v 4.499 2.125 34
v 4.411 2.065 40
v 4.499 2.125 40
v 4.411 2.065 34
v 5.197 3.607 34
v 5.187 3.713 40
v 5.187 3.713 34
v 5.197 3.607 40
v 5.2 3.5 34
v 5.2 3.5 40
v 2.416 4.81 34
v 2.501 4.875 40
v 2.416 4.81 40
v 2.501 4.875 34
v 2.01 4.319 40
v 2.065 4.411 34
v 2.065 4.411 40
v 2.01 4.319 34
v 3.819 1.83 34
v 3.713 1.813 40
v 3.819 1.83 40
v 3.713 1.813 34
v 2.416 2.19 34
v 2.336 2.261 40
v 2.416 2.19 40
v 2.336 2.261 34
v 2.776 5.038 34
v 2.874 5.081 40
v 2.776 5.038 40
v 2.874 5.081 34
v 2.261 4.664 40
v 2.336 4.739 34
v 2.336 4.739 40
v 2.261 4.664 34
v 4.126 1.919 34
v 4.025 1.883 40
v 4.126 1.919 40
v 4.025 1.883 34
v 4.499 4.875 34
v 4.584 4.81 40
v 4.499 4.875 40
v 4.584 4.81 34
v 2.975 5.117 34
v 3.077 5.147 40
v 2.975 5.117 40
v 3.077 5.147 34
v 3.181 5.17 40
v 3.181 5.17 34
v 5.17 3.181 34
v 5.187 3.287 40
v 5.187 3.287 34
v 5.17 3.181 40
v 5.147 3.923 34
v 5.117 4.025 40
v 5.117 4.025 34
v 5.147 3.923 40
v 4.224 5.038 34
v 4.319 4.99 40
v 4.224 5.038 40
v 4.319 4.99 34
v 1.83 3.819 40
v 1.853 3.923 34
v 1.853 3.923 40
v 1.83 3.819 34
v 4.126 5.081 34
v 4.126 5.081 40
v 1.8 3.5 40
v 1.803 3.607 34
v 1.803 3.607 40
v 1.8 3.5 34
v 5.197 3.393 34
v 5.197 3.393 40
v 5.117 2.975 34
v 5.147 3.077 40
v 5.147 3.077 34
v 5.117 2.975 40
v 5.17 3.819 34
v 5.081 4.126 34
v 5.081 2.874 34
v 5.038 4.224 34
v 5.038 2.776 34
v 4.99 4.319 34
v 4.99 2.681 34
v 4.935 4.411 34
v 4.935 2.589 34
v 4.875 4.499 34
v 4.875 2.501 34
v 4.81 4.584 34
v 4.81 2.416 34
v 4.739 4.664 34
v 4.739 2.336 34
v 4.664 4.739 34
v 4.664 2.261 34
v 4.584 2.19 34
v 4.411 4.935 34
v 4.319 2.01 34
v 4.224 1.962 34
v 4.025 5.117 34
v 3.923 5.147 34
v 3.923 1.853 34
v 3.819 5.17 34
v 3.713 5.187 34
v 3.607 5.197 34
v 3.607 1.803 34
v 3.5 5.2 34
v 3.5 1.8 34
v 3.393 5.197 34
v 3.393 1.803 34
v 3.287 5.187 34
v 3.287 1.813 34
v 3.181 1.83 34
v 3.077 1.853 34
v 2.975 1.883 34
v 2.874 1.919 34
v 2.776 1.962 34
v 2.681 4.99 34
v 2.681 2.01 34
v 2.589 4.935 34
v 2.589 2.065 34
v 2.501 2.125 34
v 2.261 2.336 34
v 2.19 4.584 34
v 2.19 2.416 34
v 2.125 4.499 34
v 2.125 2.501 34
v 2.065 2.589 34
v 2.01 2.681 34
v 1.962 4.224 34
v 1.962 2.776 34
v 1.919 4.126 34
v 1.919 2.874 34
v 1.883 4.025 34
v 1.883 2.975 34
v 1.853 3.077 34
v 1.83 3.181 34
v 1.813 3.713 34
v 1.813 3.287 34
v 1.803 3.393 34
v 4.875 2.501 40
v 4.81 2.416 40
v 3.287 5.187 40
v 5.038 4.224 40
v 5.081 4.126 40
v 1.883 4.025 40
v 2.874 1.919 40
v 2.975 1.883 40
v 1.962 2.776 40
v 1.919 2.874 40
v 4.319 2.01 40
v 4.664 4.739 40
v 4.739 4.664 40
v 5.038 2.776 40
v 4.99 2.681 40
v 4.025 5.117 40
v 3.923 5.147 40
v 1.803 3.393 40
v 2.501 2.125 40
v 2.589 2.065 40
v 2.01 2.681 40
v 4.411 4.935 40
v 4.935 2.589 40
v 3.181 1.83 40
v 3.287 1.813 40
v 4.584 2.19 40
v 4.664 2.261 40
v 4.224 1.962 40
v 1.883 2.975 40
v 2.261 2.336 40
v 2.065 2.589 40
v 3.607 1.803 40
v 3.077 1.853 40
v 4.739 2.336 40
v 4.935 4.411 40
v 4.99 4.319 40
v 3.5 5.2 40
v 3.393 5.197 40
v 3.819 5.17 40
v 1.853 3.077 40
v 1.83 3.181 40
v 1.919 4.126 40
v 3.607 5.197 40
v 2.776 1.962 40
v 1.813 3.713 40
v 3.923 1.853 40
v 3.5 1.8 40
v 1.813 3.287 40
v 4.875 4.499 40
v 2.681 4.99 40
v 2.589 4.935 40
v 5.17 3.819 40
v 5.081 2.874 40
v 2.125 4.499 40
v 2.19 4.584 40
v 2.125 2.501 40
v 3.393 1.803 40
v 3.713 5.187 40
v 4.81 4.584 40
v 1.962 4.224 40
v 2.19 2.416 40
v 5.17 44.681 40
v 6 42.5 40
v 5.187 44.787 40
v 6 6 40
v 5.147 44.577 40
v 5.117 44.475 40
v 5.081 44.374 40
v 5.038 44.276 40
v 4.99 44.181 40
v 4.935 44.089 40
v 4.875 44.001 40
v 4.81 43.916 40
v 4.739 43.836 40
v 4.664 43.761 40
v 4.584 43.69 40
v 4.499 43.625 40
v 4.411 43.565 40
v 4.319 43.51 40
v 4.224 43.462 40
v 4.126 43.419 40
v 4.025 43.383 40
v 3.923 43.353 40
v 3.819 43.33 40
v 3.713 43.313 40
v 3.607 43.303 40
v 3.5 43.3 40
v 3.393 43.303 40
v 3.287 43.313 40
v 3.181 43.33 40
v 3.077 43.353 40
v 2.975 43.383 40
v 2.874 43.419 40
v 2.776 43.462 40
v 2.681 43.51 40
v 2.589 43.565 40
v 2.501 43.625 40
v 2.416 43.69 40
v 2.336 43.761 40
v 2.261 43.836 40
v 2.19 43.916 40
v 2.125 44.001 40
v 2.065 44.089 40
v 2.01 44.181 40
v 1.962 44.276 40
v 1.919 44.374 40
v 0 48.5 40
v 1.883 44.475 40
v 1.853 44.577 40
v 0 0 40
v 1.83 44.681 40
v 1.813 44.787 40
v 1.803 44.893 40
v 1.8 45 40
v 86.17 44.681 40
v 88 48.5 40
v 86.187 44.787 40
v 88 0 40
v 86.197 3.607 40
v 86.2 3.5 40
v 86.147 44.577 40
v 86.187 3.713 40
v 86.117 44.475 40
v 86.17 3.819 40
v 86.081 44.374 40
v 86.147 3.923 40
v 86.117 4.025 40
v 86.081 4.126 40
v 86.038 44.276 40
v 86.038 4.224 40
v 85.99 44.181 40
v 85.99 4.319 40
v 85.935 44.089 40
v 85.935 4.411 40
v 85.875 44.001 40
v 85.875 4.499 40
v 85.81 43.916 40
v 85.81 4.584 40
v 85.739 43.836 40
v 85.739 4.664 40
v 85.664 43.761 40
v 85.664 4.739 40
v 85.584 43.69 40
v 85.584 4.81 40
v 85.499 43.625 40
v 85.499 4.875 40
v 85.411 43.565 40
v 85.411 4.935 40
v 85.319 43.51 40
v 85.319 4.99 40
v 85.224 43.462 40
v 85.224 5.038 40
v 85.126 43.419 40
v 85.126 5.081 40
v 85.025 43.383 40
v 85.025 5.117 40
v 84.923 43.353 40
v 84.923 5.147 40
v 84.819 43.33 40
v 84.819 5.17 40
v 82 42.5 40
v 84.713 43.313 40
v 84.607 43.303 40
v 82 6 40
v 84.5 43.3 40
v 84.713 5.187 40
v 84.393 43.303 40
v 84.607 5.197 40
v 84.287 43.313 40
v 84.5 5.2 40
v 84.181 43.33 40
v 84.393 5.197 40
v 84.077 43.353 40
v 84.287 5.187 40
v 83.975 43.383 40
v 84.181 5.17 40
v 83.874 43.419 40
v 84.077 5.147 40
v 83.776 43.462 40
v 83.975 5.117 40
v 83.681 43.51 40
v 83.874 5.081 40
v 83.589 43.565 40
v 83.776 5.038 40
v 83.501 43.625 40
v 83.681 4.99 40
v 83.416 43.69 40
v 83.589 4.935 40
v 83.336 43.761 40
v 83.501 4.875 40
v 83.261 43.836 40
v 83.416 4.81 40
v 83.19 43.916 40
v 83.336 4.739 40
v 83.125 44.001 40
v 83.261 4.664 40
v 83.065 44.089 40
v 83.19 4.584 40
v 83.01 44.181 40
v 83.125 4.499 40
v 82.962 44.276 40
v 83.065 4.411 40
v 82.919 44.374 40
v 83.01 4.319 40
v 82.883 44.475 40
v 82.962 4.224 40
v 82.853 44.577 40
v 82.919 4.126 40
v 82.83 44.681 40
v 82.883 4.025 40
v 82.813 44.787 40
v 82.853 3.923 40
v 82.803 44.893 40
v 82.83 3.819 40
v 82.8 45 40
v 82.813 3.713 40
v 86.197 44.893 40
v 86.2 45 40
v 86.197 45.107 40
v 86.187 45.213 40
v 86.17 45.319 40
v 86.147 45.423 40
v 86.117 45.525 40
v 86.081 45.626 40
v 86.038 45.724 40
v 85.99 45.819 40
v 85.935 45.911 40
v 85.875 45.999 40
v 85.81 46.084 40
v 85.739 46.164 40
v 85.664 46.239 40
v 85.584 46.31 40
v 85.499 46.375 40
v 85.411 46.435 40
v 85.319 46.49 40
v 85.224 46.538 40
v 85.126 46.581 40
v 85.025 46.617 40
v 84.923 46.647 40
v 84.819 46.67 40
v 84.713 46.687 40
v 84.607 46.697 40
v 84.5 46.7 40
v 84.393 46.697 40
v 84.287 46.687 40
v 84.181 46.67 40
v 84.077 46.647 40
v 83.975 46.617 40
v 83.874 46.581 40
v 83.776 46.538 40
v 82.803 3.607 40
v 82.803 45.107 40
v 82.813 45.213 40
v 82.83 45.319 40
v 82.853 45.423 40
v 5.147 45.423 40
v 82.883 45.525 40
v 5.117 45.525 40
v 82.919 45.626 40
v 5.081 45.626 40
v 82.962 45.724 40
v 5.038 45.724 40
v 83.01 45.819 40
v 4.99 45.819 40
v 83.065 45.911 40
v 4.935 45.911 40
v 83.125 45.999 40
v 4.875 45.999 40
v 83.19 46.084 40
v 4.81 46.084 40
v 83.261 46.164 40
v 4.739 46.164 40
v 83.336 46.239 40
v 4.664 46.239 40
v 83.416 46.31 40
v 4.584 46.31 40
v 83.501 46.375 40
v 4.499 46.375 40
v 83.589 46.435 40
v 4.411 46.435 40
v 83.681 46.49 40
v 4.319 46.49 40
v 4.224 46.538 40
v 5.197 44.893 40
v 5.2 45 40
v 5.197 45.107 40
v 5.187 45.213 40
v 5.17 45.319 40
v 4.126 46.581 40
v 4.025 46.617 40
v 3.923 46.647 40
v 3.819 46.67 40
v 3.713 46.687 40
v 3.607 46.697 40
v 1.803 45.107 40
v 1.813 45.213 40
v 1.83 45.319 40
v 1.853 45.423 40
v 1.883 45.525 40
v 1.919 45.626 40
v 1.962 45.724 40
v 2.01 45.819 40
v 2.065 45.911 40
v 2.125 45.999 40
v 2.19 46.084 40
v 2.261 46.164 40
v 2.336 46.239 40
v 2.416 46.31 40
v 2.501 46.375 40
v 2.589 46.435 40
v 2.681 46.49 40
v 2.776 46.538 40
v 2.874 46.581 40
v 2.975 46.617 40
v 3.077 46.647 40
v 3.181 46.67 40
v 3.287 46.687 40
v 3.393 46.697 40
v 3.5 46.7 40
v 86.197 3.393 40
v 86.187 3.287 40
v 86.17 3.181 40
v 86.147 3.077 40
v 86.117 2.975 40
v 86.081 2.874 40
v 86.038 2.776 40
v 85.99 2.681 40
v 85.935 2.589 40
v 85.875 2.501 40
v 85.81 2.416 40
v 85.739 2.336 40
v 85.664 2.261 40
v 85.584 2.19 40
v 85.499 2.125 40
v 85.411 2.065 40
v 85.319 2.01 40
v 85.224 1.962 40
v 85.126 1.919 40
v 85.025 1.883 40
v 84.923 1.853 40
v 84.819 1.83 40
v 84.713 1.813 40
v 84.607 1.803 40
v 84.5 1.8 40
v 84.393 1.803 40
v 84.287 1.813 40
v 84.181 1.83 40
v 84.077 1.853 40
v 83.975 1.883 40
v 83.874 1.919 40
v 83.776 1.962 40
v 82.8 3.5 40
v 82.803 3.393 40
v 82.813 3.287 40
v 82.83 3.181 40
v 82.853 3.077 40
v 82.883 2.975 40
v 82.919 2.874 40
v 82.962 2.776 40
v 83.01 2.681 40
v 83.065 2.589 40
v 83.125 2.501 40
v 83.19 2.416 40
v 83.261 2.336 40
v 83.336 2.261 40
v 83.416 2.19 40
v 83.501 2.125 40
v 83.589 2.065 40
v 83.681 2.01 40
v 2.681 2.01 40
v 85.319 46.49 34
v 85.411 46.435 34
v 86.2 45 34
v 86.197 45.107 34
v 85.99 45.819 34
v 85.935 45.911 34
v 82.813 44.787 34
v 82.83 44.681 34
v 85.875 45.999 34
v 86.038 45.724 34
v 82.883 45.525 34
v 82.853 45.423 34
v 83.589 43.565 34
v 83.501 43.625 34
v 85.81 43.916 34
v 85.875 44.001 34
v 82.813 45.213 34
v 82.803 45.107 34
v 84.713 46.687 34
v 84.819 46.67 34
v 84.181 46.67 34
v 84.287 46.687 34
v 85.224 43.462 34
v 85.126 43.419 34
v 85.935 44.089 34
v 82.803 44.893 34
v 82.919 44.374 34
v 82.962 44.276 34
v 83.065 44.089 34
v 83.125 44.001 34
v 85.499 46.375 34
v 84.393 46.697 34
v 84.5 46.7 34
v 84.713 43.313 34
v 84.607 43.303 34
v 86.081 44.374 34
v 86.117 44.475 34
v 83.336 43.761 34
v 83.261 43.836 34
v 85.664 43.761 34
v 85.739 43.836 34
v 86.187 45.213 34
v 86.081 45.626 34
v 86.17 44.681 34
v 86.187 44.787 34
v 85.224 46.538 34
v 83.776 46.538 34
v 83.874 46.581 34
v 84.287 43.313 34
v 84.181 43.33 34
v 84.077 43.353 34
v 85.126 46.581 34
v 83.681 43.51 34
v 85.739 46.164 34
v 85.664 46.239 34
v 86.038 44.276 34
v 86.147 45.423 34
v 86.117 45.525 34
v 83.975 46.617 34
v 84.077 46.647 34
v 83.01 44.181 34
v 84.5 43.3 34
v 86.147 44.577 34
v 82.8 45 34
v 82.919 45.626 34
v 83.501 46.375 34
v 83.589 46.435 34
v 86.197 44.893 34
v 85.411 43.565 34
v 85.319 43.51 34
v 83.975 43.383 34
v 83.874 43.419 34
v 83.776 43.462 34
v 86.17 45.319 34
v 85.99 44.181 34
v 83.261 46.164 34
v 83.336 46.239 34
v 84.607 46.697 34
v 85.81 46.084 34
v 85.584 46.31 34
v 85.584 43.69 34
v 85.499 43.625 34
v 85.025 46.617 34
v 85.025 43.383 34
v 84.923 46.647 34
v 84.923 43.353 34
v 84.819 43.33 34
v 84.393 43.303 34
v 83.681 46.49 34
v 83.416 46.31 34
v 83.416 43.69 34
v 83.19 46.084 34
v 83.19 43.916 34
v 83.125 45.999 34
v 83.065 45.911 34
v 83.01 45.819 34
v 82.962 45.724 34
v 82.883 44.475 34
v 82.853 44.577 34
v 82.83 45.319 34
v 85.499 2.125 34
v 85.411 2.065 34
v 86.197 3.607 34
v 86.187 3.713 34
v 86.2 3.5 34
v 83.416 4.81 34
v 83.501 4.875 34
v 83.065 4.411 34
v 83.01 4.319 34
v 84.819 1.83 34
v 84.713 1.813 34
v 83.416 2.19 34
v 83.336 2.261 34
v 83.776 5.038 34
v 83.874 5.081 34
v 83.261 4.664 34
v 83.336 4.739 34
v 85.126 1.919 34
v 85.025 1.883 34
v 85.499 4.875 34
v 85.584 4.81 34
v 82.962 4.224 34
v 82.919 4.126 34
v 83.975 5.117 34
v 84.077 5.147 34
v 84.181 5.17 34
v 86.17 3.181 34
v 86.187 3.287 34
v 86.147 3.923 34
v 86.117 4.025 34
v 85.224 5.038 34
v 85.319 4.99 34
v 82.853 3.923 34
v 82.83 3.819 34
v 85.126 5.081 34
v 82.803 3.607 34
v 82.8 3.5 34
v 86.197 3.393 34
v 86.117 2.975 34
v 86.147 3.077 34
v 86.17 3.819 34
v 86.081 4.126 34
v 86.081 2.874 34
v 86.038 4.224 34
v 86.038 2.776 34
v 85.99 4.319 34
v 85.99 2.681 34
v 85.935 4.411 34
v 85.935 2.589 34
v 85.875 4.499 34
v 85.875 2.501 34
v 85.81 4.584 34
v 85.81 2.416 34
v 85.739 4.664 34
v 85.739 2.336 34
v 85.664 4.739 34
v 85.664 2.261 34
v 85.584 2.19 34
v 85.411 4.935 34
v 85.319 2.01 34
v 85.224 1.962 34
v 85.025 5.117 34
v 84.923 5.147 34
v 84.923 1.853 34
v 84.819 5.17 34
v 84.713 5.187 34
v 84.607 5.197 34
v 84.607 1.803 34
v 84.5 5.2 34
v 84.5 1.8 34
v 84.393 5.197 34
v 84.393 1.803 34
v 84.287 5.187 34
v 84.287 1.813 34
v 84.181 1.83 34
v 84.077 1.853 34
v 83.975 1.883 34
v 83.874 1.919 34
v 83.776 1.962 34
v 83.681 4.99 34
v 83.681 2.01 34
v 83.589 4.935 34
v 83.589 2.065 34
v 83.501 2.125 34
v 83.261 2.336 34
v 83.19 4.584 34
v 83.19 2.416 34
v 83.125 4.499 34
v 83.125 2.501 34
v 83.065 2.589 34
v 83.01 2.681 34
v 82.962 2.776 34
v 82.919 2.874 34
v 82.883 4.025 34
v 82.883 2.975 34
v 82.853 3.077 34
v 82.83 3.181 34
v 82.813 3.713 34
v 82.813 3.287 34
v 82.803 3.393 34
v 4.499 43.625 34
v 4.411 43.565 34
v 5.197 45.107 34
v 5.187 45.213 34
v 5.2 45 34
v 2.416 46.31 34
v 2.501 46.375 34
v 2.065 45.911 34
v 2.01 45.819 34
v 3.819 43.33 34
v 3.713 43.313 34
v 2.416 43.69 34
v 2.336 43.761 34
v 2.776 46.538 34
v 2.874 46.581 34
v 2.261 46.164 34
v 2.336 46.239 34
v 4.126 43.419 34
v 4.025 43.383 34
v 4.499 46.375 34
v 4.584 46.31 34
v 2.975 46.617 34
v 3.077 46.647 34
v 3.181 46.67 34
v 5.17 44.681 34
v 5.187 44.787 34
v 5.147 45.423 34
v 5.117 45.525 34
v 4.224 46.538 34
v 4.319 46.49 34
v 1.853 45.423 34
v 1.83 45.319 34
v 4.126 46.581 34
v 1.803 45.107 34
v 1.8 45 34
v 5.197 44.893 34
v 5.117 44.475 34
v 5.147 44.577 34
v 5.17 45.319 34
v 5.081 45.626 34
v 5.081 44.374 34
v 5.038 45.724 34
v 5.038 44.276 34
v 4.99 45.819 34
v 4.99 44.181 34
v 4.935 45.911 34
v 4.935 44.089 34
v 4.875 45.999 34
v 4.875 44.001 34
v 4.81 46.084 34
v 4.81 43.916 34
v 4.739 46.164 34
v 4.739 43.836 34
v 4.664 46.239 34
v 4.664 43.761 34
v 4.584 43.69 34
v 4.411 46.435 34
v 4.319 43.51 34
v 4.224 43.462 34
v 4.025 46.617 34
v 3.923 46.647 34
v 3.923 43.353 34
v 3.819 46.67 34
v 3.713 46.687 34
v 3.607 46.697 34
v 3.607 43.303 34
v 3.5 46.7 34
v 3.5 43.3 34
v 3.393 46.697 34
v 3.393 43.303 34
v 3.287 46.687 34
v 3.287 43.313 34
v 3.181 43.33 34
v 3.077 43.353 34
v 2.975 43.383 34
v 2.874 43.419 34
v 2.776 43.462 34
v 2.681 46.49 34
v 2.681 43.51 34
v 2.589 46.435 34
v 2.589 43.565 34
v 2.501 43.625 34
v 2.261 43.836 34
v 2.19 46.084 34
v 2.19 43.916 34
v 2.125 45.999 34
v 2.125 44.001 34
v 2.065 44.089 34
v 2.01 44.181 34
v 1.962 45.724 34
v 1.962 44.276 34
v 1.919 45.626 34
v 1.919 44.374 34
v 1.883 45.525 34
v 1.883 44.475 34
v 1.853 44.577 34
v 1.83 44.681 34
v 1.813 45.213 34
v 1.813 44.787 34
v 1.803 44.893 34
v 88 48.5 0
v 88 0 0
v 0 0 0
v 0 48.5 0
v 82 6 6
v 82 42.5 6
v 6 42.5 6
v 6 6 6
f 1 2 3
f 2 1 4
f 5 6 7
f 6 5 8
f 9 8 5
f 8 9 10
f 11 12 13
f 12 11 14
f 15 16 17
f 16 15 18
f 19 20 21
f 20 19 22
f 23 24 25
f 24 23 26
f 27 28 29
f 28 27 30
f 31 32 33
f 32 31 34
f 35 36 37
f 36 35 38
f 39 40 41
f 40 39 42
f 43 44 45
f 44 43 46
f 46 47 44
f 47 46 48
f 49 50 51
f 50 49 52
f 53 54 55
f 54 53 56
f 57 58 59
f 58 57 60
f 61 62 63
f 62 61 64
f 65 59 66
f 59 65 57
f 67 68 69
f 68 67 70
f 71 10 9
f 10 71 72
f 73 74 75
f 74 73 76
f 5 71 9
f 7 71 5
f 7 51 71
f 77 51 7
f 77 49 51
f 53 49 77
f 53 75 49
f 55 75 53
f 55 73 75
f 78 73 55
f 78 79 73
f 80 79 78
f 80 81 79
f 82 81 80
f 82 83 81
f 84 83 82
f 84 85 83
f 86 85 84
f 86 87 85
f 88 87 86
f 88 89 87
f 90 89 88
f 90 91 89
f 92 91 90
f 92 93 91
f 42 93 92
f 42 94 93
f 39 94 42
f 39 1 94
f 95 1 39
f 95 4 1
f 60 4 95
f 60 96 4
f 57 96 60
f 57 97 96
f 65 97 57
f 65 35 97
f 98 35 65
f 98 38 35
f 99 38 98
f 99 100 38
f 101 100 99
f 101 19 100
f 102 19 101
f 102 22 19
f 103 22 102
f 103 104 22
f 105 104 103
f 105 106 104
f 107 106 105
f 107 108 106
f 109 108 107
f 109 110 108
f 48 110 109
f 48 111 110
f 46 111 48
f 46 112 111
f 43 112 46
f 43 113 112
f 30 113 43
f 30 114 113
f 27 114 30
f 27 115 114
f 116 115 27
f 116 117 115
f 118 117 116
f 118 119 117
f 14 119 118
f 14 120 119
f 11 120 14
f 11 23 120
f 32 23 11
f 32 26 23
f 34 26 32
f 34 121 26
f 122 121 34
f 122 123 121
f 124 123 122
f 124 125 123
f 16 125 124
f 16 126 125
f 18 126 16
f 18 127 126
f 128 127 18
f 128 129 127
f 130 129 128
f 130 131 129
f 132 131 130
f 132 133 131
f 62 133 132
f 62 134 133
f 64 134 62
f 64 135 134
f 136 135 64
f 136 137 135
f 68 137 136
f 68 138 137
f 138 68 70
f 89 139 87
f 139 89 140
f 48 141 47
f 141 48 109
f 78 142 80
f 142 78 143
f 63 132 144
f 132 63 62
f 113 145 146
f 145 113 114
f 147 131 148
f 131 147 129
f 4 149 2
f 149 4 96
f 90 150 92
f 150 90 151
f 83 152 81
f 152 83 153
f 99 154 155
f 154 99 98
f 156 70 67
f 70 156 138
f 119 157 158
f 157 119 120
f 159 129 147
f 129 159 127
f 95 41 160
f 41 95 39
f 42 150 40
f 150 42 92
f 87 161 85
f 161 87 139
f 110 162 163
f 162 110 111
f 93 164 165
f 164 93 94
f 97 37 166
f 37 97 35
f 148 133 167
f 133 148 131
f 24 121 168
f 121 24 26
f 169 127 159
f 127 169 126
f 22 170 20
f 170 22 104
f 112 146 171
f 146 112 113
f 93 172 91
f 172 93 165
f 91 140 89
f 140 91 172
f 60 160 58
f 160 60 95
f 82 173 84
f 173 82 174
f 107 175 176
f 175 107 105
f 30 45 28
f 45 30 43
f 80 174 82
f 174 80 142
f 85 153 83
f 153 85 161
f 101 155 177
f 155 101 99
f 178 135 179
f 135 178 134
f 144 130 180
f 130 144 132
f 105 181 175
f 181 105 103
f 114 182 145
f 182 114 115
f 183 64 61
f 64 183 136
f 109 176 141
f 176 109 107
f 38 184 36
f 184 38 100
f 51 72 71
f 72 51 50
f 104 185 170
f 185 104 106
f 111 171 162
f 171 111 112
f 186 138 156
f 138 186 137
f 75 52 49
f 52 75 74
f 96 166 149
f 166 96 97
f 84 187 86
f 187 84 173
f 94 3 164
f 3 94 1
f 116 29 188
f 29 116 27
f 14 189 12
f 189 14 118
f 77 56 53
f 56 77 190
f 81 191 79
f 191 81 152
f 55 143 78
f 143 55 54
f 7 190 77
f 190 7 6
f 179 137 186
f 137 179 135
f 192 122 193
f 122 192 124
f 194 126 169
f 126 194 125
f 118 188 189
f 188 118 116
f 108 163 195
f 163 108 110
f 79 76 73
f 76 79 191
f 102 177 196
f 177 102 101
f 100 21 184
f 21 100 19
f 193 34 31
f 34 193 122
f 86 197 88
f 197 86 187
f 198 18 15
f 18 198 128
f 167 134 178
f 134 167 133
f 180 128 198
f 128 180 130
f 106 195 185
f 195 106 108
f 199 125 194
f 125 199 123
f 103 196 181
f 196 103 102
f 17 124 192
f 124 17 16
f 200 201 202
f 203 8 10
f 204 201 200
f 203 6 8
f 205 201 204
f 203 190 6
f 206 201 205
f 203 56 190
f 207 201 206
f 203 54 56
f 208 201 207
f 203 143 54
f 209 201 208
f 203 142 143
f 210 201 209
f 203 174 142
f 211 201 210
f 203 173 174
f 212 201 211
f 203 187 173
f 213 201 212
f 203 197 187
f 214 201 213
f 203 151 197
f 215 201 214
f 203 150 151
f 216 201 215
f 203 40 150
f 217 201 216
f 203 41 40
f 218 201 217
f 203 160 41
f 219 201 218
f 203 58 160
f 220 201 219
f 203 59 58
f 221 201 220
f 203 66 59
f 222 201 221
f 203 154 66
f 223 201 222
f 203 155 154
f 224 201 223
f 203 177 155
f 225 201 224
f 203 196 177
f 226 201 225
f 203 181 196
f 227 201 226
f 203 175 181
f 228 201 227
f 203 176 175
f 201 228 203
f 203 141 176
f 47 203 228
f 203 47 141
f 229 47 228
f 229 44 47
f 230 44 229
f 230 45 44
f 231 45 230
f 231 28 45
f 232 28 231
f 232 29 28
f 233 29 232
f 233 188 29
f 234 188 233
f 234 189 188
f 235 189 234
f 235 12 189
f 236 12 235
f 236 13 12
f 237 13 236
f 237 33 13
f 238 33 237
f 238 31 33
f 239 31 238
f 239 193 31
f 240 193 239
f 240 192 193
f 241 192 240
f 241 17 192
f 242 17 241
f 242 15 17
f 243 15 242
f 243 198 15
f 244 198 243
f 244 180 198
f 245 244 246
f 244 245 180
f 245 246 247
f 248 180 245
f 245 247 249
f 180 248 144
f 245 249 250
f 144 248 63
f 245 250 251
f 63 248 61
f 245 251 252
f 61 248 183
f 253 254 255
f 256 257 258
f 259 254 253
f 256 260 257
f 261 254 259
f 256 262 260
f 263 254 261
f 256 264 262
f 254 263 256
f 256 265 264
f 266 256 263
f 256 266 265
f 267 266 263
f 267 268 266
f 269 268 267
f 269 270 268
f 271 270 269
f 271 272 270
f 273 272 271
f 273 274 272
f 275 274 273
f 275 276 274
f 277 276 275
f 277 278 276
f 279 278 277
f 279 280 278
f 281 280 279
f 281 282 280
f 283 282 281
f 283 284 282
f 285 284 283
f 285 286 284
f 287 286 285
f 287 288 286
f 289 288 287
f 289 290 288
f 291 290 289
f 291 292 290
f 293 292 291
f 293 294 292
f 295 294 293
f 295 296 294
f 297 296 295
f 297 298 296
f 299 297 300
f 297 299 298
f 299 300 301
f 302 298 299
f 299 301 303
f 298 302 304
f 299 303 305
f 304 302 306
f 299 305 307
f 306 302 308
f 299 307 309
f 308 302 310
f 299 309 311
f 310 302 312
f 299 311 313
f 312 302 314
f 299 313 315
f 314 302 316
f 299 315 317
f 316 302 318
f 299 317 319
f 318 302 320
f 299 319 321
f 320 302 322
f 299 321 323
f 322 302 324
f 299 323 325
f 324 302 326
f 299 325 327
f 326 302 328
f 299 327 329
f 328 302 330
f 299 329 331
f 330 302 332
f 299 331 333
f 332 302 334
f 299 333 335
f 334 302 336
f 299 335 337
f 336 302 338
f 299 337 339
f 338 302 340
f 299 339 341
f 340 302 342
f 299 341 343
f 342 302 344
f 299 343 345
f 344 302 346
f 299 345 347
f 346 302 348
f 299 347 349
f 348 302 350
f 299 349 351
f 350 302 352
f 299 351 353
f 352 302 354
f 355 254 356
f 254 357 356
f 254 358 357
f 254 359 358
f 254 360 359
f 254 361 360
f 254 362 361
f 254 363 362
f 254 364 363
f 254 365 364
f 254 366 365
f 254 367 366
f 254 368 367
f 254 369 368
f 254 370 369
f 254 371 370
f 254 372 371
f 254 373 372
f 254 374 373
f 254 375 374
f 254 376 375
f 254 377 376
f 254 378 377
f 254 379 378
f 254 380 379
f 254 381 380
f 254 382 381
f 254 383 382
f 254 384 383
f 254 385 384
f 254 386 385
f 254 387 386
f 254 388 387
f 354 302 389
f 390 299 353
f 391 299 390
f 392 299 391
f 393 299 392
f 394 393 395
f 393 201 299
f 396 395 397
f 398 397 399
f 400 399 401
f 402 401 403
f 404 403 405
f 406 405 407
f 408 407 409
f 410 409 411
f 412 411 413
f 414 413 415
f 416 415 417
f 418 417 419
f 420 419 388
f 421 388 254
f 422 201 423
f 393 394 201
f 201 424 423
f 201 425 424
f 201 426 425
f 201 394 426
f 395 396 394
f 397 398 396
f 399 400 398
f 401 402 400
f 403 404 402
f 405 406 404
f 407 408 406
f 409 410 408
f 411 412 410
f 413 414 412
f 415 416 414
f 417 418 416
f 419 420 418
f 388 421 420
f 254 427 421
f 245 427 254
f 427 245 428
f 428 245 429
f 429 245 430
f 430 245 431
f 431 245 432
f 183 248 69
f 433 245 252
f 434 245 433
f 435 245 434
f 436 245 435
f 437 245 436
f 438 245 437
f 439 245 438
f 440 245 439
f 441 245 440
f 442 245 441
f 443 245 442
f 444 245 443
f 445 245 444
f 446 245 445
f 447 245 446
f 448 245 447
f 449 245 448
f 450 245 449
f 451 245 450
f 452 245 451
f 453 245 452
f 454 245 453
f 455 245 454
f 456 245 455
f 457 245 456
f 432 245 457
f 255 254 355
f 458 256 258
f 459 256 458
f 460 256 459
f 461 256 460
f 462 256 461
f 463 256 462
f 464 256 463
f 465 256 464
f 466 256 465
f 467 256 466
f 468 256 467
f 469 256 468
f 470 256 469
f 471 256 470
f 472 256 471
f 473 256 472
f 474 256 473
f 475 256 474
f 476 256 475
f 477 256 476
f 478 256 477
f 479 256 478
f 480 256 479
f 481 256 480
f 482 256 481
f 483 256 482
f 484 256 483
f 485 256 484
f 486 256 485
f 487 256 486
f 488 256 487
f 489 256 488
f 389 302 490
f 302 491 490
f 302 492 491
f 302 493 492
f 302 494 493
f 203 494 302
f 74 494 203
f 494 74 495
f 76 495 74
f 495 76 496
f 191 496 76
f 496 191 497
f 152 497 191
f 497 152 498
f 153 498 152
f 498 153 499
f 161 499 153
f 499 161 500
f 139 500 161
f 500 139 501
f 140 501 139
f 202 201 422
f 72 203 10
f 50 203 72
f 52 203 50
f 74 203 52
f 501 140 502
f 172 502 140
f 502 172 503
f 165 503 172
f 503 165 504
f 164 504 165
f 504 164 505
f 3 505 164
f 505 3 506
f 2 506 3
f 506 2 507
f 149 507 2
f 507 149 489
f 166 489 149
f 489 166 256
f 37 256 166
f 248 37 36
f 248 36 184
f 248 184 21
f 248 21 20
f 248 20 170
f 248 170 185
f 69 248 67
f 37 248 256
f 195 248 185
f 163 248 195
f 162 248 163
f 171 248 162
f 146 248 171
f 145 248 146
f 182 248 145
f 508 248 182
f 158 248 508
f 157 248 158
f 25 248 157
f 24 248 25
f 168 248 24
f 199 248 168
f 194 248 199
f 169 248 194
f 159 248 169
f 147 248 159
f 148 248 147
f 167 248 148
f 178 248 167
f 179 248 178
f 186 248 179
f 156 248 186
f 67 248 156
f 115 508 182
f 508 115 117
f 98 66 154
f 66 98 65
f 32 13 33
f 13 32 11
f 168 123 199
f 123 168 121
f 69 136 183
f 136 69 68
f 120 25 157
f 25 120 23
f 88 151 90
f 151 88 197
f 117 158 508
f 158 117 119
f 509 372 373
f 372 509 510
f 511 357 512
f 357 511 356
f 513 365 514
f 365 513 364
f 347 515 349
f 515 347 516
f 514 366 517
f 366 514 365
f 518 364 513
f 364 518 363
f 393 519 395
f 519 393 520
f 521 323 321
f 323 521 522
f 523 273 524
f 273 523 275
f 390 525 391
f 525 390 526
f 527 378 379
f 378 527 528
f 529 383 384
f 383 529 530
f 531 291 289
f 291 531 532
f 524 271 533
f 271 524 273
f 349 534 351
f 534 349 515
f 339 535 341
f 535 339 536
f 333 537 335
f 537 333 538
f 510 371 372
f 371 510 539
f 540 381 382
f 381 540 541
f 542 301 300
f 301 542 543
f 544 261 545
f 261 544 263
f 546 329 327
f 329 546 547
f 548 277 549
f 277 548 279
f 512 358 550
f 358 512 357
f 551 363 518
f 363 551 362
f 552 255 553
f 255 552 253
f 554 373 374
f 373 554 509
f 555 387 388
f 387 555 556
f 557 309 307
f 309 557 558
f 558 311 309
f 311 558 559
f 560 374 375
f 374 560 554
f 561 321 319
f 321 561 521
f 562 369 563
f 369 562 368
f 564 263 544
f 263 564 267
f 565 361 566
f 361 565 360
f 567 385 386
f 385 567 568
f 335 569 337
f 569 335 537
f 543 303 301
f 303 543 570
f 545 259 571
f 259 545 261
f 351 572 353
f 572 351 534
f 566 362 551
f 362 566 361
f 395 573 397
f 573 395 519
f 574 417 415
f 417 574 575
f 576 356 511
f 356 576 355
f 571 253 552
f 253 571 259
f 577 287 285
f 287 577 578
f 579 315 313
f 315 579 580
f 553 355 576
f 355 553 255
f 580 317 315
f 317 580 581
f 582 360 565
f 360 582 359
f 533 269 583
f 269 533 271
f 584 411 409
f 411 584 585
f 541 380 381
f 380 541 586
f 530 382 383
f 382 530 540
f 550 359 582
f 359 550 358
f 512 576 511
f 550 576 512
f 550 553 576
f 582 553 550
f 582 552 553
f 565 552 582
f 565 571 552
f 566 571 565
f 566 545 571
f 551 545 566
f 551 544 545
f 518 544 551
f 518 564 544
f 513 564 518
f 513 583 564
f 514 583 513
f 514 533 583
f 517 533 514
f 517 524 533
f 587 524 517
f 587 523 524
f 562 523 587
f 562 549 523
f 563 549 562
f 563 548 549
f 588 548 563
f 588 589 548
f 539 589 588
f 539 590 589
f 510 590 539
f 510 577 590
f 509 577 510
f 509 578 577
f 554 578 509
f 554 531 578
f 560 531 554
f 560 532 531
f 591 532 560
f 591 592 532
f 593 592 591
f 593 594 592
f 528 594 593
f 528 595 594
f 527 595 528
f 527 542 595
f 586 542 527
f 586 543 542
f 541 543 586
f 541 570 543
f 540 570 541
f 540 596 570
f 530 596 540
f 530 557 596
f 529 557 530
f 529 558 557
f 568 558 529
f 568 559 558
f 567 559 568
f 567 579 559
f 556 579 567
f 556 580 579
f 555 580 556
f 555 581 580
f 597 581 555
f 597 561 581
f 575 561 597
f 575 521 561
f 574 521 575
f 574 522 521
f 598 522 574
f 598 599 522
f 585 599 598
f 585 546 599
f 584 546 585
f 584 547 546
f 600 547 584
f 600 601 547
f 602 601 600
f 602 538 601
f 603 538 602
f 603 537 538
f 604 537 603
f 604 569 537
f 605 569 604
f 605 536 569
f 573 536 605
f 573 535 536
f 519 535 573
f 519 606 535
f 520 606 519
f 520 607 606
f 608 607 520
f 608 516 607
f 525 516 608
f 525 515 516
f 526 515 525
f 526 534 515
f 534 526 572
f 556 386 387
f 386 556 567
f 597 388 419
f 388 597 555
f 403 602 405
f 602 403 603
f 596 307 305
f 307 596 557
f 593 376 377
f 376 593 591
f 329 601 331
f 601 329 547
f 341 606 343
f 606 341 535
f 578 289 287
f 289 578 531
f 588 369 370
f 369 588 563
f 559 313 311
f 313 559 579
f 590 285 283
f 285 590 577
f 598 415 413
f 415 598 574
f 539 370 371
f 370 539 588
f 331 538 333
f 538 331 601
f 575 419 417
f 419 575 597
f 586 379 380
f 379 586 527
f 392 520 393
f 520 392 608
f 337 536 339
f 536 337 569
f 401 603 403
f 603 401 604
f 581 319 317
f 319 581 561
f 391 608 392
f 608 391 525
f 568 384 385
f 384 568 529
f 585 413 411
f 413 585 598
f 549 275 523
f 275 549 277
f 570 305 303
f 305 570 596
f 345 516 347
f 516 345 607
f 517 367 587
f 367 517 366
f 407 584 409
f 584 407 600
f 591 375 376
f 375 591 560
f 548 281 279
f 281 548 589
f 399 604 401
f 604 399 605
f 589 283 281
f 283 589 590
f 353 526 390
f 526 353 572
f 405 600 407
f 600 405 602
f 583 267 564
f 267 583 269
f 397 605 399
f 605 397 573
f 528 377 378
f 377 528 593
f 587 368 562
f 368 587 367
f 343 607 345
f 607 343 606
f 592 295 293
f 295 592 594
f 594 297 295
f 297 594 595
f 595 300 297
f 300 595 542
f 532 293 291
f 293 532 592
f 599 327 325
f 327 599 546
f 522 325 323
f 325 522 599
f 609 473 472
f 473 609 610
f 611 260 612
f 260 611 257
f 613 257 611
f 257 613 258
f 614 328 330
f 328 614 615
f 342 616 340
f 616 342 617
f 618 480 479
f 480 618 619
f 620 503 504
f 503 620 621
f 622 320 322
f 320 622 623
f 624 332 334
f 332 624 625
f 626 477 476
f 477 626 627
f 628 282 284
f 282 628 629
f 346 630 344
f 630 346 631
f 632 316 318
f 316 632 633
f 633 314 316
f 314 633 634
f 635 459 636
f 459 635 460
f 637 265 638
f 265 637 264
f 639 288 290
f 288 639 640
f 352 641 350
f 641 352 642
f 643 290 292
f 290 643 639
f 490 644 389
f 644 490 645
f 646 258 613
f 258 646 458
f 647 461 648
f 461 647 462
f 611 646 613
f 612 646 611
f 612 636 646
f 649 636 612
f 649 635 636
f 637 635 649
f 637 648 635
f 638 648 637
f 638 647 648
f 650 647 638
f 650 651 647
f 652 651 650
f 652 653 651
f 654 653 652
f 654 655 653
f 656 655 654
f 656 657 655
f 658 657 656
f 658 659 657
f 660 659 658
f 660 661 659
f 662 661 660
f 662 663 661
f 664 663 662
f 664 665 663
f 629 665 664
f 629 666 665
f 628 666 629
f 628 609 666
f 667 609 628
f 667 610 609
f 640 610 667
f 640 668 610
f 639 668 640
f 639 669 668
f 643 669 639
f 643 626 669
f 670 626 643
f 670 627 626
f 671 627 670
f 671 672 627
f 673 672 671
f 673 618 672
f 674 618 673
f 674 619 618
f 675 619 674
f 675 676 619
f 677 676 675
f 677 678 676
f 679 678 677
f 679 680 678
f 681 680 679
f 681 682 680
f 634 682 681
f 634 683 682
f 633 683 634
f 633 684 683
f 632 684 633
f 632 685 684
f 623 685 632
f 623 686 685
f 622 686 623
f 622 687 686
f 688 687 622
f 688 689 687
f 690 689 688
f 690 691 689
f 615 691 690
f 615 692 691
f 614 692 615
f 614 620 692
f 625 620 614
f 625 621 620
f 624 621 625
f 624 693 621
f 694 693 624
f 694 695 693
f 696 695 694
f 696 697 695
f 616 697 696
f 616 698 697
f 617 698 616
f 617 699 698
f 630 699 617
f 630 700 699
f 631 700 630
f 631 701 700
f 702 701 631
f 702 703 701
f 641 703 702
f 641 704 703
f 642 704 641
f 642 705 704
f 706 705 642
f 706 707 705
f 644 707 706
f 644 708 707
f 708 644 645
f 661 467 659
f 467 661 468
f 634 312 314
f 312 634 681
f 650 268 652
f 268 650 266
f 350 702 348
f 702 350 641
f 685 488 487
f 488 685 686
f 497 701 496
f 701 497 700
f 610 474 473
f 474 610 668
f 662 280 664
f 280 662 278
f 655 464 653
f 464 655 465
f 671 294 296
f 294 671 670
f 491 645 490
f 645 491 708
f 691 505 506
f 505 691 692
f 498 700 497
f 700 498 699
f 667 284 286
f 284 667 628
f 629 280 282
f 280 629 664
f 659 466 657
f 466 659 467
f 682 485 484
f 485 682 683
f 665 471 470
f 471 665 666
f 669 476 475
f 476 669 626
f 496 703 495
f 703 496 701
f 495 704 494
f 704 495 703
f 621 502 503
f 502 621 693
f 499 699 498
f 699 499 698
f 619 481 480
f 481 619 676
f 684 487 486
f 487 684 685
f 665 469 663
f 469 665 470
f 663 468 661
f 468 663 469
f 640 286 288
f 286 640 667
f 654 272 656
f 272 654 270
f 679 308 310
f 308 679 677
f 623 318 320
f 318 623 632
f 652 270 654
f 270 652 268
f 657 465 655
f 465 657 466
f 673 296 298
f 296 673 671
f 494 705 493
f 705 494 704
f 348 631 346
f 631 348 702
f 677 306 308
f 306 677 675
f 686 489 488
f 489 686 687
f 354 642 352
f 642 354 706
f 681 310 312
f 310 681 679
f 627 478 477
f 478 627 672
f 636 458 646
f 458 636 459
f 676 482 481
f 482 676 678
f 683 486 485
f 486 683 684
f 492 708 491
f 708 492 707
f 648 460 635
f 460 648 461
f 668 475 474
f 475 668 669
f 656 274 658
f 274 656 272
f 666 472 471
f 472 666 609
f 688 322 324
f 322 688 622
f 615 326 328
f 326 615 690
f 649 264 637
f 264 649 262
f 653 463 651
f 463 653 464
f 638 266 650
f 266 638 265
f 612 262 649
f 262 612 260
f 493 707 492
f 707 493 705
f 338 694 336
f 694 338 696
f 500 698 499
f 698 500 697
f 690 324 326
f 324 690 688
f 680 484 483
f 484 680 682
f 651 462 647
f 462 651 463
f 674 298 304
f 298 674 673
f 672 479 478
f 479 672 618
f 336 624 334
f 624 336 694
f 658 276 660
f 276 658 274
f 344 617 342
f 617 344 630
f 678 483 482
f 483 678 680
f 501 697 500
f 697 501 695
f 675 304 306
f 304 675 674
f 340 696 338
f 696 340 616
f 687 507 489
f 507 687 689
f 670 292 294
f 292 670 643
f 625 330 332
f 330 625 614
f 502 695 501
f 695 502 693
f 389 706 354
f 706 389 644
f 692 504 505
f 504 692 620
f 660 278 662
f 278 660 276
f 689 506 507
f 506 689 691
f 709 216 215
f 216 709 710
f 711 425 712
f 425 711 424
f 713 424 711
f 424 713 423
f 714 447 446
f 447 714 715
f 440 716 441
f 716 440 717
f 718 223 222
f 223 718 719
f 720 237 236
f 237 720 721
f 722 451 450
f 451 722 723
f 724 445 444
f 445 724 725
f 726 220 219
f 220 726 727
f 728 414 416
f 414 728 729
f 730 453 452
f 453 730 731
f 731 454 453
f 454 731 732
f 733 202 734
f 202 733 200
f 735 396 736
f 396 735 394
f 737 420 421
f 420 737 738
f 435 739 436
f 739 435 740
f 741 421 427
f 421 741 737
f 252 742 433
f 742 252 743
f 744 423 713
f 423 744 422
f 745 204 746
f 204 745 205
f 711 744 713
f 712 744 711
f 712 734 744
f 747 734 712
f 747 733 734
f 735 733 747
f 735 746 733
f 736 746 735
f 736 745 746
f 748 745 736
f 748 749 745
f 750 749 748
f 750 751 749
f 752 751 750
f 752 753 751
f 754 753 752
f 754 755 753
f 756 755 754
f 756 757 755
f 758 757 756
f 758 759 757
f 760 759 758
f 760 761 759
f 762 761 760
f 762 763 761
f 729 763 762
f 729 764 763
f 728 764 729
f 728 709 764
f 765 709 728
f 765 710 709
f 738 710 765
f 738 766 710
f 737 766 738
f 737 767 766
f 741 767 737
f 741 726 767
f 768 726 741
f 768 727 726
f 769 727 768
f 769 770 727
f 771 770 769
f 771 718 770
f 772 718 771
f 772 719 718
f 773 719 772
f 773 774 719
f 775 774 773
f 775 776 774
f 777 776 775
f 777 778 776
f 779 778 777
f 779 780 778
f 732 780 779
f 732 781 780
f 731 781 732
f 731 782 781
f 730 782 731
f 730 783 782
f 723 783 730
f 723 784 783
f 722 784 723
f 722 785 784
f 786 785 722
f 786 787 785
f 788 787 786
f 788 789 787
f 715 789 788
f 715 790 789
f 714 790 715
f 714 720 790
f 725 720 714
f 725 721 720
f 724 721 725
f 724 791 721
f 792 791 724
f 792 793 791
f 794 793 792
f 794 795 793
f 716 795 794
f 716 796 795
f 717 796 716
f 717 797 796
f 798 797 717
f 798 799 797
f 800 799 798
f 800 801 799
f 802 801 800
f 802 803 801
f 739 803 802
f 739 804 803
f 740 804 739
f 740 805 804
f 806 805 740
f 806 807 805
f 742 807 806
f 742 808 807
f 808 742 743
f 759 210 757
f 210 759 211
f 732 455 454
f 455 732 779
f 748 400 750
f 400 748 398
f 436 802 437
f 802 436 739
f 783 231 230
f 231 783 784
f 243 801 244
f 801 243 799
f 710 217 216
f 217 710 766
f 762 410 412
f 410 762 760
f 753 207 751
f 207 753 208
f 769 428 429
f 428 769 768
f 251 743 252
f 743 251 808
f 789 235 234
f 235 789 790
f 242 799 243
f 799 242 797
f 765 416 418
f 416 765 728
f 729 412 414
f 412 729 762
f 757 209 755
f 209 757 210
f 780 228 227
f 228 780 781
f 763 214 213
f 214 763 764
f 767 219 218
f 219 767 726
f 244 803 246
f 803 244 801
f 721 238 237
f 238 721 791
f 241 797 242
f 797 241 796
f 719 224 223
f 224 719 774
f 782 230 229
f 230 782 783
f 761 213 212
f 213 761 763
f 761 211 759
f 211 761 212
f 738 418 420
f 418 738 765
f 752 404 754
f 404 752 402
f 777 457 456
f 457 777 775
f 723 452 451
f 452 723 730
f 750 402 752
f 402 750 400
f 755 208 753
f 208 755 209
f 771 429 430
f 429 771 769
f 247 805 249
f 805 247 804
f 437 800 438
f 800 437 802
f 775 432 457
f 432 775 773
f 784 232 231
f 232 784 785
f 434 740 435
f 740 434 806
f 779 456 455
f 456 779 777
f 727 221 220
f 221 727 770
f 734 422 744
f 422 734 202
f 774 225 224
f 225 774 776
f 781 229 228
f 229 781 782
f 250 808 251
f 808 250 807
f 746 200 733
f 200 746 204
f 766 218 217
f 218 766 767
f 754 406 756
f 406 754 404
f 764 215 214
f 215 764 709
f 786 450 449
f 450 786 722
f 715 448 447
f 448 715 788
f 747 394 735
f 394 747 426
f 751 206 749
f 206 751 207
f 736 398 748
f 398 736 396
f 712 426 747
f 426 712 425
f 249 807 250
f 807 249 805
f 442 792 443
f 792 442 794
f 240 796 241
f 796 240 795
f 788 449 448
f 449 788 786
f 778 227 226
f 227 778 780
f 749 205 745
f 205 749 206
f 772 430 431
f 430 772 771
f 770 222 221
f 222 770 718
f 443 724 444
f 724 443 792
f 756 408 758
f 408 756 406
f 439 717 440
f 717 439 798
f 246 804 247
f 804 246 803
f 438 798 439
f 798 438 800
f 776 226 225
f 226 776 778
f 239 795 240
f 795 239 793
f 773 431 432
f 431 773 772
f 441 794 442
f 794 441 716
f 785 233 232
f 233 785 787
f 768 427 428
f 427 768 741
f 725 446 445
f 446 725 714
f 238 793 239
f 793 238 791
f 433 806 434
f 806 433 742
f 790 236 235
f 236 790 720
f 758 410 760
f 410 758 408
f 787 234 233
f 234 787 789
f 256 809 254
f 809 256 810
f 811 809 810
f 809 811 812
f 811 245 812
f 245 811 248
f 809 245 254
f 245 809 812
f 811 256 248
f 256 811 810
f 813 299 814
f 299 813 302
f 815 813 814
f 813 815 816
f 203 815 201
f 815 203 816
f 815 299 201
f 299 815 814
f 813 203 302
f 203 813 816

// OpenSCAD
$fn=100;

radii = 1.7;
padding = 0.3;
width = 24;
height = 26.5;

border = 10;

difference(){
    cube([width+width+28+(border+2),height+10+(border+2),40]);
    translate([(border+2)/2,(border+2)/2,(border+2)/2]){
        cube([width+width+28,height+10,35]);
    }

    // screw holes
    translate([0,0,40-6]){
        translate([1.8+radii,1.8+radii,0]){
            cylinder(h=6,r=radii);
        }
        translate([width+width+28+(border+2)-radii-1.8,height+10+(border+2)-radii-1.8,0]){
            cylinder(h=6,r=radii);
        }
        translate([-1.8-radii+width+width+28+(border+2),1.8+radii,0]){
            cylinder(h=6,r=radii);
        }
        translate([1.8+radii,-1.8-radii+height+10+(border+2),0]){
            cylinder(h=6,r=radii);
        }
    }
};
